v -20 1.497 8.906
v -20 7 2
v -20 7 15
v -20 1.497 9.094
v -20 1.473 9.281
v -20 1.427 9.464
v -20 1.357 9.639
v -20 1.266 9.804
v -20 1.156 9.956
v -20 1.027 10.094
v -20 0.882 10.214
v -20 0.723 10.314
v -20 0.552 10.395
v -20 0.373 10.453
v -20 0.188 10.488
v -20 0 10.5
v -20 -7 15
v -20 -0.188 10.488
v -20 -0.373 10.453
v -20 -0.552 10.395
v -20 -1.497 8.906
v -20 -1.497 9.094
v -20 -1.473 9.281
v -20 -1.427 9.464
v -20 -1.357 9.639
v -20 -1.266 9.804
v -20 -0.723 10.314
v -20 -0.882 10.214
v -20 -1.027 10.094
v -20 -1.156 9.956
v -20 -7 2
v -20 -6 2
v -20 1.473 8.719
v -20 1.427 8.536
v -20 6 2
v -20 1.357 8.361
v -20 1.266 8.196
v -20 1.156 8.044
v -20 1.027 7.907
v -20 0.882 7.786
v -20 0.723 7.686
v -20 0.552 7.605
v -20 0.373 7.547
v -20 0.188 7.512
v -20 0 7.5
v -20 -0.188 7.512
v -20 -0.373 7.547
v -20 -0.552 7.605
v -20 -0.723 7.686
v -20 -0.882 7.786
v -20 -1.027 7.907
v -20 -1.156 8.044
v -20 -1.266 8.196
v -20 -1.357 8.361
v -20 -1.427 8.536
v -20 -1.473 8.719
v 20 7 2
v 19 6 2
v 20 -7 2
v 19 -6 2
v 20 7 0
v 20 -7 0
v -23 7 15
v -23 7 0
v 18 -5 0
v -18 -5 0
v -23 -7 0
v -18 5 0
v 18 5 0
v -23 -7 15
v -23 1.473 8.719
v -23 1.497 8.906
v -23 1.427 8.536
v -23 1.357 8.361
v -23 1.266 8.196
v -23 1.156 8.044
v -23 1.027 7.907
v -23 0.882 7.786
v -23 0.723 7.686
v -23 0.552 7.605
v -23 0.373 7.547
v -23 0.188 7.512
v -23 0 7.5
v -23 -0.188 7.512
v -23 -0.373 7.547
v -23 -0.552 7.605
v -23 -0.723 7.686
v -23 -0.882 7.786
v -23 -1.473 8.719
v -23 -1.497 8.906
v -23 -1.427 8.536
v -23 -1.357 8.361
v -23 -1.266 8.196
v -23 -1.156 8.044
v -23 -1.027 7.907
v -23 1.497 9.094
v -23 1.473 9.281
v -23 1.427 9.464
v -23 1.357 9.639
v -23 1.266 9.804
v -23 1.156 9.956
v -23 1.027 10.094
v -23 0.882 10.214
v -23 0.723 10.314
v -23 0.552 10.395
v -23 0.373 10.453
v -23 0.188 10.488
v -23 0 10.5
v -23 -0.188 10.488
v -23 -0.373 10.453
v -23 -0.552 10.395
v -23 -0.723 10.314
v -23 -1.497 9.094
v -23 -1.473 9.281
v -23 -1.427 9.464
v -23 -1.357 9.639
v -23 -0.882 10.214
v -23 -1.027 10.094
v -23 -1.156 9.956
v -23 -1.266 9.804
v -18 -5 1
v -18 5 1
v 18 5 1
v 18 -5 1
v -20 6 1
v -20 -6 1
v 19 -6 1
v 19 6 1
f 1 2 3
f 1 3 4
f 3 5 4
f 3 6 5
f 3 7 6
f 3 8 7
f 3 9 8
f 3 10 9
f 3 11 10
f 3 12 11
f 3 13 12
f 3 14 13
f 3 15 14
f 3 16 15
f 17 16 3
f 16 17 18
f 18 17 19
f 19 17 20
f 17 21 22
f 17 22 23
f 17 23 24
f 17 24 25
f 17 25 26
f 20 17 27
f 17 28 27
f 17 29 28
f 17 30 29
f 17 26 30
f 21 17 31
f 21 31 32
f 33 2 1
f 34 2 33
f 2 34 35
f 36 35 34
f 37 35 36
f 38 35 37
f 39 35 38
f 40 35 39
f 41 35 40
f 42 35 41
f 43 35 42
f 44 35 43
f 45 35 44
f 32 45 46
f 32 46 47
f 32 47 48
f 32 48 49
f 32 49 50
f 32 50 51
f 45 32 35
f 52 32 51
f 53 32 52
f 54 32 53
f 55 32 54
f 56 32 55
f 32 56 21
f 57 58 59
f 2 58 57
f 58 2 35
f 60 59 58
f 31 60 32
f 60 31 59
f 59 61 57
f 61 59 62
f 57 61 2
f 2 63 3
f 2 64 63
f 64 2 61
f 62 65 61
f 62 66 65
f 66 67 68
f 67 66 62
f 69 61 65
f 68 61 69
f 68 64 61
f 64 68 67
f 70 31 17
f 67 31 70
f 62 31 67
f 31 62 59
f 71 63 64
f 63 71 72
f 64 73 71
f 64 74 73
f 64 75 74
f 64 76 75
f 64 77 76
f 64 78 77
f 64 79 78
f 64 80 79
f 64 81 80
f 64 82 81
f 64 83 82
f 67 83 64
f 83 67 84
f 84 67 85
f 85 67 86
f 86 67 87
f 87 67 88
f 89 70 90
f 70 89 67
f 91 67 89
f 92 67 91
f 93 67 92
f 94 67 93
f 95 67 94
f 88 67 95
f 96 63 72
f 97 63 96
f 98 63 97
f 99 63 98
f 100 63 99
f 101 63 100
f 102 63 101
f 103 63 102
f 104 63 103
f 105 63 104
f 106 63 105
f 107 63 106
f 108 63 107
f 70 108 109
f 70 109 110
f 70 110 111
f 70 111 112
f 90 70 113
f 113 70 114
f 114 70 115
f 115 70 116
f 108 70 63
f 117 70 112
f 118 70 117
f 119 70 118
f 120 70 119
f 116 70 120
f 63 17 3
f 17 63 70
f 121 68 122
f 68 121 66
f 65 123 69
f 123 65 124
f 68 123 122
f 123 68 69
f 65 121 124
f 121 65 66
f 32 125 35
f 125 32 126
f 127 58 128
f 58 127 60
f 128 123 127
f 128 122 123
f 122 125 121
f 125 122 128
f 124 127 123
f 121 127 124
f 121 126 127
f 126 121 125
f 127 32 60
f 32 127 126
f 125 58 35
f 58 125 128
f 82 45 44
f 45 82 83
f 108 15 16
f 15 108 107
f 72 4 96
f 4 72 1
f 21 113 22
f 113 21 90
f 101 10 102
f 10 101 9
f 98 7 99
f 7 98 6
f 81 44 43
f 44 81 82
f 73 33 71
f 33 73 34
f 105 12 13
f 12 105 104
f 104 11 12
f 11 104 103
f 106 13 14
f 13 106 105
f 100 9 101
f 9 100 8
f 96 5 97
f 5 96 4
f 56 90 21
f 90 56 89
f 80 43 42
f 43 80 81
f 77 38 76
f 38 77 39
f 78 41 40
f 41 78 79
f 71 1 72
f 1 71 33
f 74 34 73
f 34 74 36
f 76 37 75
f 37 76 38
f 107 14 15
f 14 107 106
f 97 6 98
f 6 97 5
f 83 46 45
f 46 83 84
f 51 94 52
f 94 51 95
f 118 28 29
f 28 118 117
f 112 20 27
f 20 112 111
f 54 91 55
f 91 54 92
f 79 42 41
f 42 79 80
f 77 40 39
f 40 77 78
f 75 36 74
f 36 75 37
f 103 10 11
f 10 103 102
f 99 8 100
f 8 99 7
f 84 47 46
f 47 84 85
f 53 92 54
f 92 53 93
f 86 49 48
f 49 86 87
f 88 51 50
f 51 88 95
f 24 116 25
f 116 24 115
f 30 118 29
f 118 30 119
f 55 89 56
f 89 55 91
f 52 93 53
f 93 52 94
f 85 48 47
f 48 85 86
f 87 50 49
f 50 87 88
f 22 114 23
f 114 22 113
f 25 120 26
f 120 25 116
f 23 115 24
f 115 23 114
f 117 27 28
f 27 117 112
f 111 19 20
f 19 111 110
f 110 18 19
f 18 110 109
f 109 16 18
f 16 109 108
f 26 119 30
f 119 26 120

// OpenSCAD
$fn = 50;


difference() {
	union() {
		translate(v = [-20.0000000000, -7.0000000000, 0]) {
			cube(size = [40, 14, 2]);
		}
		translate(v = [-23.0000000000, -7.0000000000, 0]) {
			cube(size = [3, 14, 15]);
		}
	}
	union() {
		translate(v = [-18.0000000000, -5.0000000000, 0]) {
			cube(size = [36, 10, 2]);
		}
		translate(v = [-20.0000000000, -6.0000000000, 1]) {
			cube(size = [39, 12, 1]);
		}
		#translate(v = [-30.0000000000, 0, 9]) {
			rotate(a = [0, 90, 0]) {
				cylinder(h = 20, r = 1.5000000000);
			}
		}
	}
}
